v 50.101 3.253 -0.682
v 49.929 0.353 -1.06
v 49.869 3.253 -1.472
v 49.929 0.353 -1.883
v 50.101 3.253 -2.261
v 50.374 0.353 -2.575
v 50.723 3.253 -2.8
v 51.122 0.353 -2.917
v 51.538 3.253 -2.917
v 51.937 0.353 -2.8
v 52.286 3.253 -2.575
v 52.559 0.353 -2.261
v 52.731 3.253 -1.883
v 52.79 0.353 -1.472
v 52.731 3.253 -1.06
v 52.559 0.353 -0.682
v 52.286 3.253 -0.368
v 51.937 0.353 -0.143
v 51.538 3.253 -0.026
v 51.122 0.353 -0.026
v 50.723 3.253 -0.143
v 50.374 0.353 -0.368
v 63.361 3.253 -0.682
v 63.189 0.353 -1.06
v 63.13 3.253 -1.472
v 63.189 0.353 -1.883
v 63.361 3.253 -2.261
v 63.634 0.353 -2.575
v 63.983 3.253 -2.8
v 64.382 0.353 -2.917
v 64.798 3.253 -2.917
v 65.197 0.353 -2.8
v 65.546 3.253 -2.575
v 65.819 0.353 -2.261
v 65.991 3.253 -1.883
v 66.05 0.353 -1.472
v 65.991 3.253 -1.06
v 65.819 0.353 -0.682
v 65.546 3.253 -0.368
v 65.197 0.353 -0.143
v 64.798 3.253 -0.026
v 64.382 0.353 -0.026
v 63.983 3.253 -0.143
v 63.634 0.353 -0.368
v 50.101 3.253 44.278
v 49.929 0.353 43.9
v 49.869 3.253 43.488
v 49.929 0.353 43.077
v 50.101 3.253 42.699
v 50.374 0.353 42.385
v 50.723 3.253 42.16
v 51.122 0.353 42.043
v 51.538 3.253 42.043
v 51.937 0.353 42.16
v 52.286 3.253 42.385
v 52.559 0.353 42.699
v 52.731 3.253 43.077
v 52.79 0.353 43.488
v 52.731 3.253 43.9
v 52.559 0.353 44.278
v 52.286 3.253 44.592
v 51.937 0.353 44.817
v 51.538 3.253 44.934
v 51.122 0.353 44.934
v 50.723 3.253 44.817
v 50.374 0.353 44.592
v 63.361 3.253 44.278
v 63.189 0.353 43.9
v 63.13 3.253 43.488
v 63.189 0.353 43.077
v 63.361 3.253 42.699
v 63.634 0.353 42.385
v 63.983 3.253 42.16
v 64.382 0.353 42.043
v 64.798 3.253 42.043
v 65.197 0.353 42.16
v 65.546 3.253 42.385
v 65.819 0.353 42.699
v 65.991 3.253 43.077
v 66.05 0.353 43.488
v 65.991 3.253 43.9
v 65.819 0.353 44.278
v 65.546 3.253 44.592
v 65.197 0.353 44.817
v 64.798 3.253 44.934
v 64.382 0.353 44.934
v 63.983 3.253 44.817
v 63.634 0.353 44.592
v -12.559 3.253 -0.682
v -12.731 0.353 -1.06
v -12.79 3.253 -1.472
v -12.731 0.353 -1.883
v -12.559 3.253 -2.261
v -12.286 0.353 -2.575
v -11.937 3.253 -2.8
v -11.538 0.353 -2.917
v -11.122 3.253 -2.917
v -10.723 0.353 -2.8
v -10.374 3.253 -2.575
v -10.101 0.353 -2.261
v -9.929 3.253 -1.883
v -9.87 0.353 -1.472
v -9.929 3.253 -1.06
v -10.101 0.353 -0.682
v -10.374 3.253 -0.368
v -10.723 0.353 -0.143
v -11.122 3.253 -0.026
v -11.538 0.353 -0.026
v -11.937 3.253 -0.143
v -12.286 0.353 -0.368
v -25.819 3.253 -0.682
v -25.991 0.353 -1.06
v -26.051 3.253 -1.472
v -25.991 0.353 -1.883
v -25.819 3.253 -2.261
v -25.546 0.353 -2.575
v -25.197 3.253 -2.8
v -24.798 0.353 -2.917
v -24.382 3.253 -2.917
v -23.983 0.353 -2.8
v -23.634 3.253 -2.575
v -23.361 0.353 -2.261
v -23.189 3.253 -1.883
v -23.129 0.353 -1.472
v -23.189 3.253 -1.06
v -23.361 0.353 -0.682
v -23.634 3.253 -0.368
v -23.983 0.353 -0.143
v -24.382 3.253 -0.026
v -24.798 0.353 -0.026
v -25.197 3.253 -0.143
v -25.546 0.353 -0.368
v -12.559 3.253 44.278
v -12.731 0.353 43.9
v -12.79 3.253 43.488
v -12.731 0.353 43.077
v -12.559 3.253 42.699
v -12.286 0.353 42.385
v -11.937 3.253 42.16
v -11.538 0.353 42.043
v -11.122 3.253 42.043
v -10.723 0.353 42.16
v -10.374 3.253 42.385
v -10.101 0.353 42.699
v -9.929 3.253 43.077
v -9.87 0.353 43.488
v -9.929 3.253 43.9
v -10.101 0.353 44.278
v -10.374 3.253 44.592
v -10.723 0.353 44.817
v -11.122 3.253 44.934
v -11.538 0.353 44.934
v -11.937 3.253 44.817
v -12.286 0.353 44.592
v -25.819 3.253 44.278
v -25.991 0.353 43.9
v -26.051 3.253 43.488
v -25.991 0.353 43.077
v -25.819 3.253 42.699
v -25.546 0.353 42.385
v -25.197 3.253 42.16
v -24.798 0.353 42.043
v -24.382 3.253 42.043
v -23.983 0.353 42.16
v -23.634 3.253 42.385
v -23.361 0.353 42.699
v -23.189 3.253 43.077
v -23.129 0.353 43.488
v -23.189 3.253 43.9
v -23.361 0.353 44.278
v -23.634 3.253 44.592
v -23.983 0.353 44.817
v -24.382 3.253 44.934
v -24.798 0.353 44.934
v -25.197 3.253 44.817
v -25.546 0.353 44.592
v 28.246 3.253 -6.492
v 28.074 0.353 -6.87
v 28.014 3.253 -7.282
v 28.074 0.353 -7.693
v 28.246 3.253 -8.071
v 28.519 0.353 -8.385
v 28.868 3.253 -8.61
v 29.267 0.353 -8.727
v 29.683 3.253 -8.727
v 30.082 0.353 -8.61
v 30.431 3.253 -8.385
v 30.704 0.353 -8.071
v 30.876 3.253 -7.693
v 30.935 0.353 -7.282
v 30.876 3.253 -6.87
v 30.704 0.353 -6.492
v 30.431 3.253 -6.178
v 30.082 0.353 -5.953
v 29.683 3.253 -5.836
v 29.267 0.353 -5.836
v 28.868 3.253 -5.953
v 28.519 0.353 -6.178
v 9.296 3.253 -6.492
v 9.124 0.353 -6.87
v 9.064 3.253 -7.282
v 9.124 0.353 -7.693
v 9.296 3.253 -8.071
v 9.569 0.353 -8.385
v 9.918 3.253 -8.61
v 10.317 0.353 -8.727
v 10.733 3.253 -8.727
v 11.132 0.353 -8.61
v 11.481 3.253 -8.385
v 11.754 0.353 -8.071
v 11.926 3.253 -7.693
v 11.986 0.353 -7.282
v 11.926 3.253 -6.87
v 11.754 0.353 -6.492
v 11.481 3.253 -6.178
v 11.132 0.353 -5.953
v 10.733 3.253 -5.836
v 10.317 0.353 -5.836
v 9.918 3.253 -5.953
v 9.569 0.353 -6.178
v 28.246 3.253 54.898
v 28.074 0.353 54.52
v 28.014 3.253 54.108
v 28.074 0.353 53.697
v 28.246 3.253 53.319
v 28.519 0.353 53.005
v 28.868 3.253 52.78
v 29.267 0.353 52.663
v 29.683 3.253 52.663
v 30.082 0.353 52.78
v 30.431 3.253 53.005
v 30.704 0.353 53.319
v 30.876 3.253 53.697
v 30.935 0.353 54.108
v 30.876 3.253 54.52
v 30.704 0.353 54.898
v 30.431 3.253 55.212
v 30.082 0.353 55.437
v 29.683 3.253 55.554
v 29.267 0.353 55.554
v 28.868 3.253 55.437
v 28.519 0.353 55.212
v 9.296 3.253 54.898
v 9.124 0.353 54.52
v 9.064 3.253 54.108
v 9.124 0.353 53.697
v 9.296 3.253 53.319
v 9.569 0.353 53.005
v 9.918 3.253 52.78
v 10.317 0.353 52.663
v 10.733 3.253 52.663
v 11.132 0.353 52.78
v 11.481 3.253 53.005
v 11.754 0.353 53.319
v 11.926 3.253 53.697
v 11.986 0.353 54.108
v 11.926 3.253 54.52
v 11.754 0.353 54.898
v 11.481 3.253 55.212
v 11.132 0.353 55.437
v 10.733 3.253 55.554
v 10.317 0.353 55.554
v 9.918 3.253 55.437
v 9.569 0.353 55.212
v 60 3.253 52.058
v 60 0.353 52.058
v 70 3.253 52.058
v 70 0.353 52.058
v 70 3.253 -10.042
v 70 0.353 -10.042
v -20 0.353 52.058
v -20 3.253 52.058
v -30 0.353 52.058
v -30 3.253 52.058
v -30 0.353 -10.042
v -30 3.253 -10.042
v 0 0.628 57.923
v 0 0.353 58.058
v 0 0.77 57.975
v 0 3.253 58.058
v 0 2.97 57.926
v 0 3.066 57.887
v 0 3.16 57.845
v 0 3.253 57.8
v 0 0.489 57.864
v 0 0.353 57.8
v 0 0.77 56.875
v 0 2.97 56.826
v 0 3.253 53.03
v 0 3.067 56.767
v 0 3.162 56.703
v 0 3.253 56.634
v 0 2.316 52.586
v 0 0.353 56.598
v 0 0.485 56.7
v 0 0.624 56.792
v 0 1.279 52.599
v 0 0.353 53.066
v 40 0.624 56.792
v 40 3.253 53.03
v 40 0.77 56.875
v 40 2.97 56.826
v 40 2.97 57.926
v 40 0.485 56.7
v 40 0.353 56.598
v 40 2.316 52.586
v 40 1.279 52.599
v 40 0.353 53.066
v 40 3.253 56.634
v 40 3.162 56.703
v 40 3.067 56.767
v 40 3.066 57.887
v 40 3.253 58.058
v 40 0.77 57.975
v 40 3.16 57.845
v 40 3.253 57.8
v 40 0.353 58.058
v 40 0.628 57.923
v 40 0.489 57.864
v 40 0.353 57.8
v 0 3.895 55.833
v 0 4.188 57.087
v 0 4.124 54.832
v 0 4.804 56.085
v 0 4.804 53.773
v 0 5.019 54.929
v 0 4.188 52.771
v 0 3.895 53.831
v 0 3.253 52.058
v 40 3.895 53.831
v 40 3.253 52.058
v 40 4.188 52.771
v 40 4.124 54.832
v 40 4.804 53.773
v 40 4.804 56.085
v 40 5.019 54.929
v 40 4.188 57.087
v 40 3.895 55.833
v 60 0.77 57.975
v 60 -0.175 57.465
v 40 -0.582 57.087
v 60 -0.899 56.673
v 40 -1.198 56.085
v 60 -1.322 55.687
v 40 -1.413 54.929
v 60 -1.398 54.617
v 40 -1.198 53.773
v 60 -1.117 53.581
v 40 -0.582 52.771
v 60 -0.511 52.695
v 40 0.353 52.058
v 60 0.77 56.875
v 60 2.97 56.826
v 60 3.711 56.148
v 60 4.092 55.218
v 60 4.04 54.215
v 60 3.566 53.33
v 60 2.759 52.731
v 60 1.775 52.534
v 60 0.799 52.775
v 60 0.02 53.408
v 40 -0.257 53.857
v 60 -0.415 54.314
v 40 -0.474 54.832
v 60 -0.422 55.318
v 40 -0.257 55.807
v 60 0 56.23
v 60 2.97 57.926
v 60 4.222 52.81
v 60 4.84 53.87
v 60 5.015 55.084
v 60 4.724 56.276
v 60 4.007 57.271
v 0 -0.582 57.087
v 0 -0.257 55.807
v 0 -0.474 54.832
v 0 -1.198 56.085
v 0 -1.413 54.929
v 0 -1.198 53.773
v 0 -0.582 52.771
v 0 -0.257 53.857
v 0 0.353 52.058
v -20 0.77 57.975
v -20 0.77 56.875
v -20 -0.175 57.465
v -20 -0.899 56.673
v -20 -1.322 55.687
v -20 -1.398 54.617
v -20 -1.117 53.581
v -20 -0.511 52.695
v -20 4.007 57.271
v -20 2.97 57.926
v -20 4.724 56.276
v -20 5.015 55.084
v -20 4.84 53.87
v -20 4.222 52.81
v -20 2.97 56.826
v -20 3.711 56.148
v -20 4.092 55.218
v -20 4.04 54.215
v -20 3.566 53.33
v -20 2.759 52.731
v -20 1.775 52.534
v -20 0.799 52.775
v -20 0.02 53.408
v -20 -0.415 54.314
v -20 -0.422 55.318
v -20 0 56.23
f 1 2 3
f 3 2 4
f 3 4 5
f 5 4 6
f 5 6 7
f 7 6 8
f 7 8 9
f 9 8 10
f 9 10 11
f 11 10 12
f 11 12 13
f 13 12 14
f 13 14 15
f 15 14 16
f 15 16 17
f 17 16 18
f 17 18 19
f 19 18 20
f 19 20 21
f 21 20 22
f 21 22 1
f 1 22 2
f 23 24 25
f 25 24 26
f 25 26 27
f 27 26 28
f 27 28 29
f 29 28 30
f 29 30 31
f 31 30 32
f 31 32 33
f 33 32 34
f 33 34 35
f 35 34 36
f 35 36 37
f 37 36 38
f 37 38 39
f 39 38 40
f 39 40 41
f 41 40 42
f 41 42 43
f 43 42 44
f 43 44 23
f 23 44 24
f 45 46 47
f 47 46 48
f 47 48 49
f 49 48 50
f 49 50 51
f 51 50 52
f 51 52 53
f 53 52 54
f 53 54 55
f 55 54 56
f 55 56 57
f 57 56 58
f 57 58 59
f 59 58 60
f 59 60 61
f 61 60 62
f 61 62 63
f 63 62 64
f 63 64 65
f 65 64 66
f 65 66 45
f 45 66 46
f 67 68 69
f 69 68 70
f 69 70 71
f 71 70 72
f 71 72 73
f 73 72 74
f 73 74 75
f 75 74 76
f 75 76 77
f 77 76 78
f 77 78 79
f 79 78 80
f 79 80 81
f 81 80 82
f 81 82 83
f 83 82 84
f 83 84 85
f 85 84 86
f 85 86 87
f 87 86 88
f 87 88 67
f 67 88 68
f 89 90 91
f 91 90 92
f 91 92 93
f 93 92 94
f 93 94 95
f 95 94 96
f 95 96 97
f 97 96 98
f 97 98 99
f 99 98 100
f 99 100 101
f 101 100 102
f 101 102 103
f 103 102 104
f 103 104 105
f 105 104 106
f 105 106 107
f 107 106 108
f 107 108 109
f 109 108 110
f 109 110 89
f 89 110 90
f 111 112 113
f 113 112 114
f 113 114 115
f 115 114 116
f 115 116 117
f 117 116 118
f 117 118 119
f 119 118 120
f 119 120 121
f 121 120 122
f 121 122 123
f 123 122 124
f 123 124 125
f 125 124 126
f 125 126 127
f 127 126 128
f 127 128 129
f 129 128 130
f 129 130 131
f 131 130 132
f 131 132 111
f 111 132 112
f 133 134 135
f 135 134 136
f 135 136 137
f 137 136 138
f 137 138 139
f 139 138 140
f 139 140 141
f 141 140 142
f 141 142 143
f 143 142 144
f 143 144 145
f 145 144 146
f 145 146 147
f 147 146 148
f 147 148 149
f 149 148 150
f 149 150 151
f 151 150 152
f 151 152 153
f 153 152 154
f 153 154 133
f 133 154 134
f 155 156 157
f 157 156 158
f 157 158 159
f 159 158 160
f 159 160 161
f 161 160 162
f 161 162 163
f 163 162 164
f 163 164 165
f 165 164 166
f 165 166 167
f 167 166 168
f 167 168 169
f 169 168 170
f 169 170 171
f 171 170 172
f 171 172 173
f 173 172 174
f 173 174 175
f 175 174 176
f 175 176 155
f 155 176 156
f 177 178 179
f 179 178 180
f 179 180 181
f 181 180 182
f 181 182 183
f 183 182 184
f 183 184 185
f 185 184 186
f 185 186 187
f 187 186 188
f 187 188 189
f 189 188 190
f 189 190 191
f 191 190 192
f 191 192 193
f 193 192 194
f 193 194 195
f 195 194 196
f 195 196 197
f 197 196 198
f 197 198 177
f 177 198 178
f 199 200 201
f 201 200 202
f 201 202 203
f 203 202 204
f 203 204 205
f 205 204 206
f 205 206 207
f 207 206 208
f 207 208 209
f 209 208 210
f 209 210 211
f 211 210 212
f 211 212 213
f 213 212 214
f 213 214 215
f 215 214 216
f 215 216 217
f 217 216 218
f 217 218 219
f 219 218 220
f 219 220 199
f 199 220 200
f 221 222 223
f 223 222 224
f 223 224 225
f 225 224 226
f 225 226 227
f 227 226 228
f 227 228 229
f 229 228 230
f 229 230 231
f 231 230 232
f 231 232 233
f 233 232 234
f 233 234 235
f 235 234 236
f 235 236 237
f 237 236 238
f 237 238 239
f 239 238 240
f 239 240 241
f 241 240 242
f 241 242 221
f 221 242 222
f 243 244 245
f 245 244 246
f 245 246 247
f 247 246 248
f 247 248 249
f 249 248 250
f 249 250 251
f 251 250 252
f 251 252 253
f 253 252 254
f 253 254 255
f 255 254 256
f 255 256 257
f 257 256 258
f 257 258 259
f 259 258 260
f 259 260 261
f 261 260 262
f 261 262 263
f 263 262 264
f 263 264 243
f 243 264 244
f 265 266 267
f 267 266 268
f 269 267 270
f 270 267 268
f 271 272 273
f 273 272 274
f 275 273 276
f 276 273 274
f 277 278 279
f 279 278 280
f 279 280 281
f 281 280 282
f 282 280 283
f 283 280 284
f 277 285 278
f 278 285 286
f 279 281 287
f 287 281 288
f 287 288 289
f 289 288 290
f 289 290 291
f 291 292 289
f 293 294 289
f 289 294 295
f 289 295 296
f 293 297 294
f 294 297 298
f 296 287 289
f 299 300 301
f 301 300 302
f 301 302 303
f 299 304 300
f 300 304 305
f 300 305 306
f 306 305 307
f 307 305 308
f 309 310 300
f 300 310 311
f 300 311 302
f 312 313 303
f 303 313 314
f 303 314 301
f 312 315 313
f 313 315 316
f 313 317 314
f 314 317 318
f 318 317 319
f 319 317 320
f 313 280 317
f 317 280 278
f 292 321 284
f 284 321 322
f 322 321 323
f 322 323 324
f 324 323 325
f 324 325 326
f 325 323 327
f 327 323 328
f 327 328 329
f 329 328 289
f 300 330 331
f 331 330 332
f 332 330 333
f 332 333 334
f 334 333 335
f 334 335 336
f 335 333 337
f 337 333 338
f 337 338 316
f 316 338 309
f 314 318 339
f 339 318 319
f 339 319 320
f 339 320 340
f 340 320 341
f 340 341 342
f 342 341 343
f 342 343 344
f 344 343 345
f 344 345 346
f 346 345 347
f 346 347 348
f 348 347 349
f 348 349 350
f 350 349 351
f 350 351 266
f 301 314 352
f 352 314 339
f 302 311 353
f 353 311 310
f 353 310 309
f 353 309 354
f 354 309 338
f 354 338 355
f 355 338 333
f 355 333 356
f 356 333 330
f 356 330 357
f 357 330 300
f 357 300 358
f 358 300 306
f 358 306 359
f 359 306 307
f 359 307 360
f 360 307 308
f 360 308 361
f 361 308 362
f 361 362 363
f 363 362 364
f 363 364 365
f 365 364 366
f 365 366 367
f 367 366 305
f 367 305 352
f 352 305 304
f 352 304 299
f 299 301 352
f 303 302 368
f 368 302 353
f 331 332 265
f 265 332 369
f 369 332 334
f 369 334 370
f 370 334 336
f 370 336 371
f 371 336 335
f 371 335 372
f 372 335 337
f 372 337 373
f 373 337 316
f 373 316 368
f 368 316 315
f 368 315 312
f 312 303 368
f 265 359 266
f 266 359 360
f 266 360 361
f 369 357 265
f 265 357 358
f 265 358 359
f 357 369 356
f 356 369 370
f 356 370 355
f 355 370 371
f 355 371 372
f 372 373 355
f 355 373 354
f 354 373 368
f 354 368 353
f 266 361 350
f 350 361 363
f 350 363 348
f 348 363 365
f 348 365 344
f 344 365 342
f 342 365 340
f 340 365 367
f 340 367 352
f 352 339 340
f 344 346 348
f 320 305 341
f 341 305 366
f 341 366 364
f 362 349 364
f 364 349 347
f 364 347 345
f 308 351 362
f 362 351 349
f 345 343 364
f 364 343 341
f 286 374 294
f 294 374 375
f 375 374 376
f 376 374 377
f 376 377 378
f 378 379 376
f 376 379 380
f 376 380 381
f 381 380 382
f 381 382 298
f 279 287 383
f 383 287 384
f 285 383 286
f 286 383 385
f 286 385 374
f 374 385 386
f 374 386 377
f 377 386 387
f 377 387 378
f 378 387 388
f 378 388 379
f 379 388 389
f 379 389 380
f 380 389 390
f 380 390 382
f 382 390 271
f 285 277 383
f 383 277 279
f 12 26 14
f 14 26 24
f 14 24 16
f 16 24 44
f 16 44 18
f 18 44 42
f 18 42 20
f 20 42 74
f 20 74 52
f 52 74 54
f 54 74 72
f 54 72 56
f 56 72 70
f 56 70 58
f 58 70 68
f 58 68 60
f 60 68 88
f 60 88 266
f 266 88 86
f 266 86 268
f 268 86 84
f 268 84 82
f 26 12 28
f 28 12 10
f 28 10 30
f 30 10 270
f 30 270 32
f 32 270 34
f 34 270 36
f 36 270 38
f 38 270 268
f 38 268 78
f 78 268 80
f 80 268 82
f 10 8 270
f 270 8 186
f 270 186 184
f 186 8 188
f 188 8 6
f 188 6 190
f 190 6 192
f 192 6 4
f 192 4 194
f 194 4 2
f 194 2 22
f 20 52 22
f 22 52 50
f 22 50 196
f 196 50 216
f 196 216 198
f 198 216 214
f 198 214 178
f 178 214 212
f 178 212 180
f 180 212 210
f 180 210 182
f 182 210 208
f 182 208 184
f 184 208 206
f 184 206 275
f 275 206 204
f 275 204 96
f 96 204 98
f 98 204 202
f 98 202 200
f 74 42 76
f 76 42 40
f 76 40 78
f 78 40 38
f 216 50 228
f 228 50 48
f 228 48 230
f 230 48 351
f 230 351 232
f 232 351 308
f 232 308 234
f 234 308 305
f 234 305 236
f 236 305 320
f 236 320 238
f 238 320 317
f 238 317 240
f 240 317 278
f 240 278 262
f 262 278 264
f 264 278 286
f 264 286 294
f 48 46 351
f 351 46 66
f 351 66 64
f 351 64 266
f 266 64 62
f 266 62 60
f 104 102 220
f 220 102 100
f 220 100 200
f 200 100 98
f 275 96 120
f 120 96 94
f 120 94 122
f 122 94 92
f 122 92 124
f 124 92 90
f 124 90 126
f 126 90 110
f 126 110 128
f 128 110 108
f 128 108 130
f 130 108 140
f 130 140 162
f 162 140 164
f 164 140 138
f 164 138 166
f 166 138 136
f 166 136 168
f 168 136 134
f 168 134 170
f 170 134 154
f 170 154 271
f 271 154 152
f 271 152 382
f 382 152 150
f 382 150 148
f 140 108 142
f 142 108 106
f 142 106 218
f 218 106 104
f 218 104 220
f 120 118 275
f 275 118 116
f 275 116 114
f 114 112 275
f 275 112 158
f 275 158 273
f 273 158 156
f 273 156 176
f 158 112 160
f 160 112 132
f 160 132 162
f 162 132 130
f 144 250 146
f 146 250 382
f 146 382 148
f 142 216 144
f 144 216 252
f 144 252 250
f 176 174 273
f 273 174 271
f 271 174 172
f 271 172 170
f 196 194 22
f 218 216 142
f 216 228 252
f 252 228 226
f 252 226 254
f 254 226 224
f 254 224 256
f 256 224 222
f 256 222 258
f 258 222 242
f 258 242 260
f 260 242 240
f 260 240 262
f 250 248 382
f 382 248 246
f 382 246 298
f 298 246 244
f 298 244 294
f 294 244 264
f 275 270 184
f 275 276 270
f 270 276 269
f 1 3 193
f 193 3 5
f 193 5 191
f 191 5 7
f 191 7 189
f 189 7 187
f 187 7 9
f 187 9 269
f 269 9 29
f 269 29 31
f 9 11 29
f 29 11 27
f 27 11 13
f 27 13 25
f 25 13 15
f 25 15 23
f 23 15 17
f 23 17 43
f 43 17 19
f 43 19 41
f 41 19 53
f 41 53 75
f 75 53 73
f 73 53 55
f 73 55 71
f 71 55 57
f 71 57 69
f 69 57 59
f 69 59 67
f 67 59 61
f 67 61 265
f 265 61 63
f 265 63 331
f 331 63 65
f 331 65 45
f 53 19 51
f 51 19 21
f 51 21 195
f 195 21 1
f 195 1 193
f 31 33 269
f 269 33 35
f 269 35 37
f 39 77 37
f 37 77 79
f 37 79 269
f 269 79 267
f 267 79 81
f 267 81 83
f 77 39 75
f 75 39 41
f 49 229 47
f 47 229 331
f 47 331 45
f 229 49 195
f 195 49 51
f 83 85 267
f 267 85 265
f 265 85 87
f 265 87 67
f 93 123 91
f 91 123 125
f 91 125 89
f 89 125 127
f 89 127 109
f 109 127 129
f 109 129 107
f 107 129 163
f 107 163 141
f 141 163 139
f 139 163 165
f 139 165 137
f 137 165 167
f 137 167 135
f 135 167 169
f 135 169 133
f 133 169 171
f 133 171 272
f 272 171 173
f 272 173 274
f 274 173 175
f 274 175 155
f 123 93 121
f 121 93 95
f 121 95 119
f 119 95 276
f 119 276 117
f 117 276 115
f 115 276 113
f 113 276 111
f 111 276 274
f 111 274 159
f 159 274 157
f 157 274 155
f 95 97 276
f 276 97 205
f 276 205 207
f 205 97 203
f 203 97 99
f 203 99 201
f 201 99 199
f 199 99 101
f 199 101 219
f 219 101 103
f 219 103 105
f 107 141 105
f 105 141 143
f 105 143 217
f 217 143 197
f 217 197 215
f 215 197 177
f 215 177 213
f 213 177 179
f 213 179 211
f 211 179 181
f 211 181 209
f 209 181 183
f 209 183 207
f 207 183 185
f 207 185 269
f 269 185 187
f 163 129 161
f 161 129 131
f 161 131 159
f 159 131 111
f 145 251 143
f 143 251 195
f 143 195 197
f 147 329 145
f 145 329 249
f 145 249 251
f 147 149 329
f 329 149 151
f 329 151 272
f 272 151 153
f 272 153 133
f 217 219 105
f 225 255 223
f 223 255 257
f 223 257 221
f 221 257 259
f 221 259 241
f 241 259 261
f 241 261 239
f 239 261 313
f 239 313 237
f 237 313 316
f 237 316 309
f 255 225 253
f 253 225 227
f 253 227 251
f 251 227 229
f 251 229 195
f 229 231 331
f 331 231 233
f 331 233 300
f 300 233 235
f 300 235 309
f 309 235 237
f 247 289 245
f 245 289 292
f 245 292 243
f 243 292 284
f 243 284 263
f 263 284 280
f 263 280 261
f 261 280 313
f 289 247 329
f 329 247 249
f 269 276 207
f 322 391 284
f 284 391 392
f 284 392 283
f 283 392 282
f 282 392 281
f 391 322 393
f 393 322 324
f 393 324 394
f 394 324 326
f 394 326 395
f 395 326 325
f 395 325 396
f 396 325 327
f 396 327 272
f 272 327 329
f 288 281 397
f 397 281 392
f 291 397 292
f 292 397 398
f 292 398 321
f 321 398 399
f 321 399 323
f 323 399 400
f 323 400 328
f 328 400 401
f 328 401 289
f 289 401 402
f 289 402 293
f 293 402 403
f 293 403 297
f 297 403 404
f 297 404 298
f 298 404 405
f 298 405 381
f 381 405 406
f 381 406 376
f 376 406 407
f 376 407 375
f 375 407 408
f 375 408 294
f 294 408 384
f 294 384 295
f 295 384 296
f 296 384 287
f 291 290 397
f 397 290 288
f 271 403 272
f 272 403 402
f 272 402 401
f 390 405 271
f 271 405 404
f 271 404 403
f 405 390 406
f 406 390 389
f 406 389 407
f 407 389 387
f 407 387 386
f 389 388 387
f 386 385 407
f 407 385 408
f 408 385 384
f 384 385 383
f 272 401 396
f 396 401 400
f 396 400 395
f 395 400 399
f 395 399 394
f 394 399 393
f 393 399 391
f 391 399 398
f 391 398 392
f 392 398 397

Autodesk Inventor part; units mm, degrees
ref_plane "YZ Plane" through (0, 0, 0) normal (1, 0, 0) x (0, 1, 0)
ref_plane "XZ Plane" through (0, 0, 0) normal (0, 1, 0) x (-1, 0, 0)
ref_plane "XY Plane" through (0, 0, 0) normal (0, 0, 1) x (1, 0, 0)
sketch "Sketch1" plane through (0, 0, 0) normal (1, 0, 0) x (0, 1, 0)
  line L0 (3.2531, 52.0584) -> (0.3531, 52.0584)
  line L1 (0.3531, 52.0584) -> (0.3531, -10.0416)
  line L2 (0.3531, -10.0416) -> (3.2531, -10.0416)
  line L3 (3.2531, -10.0416) -> (3.2531, 52.0584)
  arc A0 (3.2531, 52.0584) -> (2.9699, 57.9259) centre (1.8031, 54.929) ccw
  arc A1 (0.7699, 57.9745) -> (0.3531, 52.0584) centre (1.8031, 54.929) ccw
  line L4 (0.7699, 57.9745) -> (0.7699, 56.8745)
  line L5 (2.9699, 57.9259) -> (2.9699, 56.8259)
  arc A2 (0.7699, 56.8745) -> (2.9699, 56.8259) centre (1.8253, 54.832) ccw
  point P0 (0, 0)
  dimension "d0" = 2.9
  dimension "d1" = 62.1
  dimension "d156" = 1.1
  dimension "d157" = 1.1
  dimension "d158" = 2.2
extrude "Extrusion1" add sketch "Sketch1" against normal blind 20
sketch "Sketch3" plane through (0, 0, 0) normal (1, 0, 0) x (0, 0, -1)
  arc A0 (-52.0584, 3.2531) -> (-57.9259, 2.9699) centre (-54.929, 1.8031) ccw projected
  line L0 (10.0416, 0.3531) -> (-52.0584, 0.3531) projected
  line L1 (-52.0584, 3.2531) -> (10.0416, 3.2531)
  line L2 (10.0416, 3.2531) -> (10.0416, 0.3531)
  line L3 (10.0416, 0.3531) -> (-52.0584, 0.3531)
  line L4 (-52.0584, 0.3531) -> (-52.0584, 3.2531)
  point P0 (0, 0)
extrude "Extrusion2" add sketch "Sketch3" along normal blind 40
sketch "Sketch4" plane through (40, 0, 0) normal (1, 0, 0) x (0, 0, -1)
  line L0 (10.0416, 0.3531) -> (-52.0584, 0.3531) projected
  line L1 (10.0416, 0.3531) -> (-52.0584, 0.3531)
  line L2 (-52.0584, 0.3531) -> (-52.0584, 3.2531)
  line L3 (-52.0584, 3.2531) -> (10.0416, 3.2531)
  line L4 (10.0416, 3.2531) -> (10.0416, 0.3531)
  arc A0 (-57.9745, 0.7699) -> (-52.0584, 0.3531) centre (-54.929, 1.8031) ccw projected
  arc A1 (-57.9745, 0.7699) -> (-52.0584, 0.3531) centre (-54.929, 1.8031) ccw
  arc A2 (-52.0584, 3.2531) -> (-57.9259, 2.9699) centre (-54.929, 1.8031) ccw projected
  arc A3 (-52.0584, 3.2531) -> (-57.9259, 2.9699) centre (-54.929, 1.8031) ccw
  arc A4 (-56.8745, 0.7699) -> (-56.8259, 2.9699) centre (-54.832, 1.8253) ccw projected
  arc A5 (-56.8745, 0.7699) -> (-56.8259, 2.9699) centre (-54.832, 1.8253) ccw
  line L5 (-56.8745, 0.7699) -> (-57.9745, 0.7699) projected
  line L6 (-56.8745, 0.7699) -> (-57.9745, 0.7699)
  line L7 (-57.9259, 2.9699) -> (-56.8259, 2.9699) projected
  line L8 (-56.8259, 2.9699) -> (-57.9259, 2.9699)
  point P0 (0, 0)
  dimension "d159" = 1.1
  dimension "d160" = 2.2
extrude "Extrusion3" add sketch "Sketch4" along normal blind 20
sketch "Sketch9" plane through (0, 0.3531, 52.0584) normal (0, 0, 1) x (1, 0, 0)
  line L0 (0, 2.9) -> (40, 2.9) projected
  line L1 (0, 2.9) -> (40, 2.9)
  line L2 (40, 2.9) -> (40, 0)
  line L3 (40, 0) -> (0, 0)
  line L4 (0, 0) -> (0, 2.9)
  point P0 (0, -0.3531)
extrude "Extrusion4" add sketch "Sketch9" along normal blind 6
sketch "Sketch10" plane through (-20, 0, 0) normal (-1, 0, 0) x (0, 0, 1)
  arc A0 (52.0584, 0.3531) -> (57.9745, 0.7699) centre (54.929, 1.8031) ccw projected
  line L0 (-10.0416, 3.2531) -> (-10.0416, 0.3531) projected
  line L1 (52.0584, 0.3531) -> (-10.0416, 0.3531)
  line L2 (-10.0416, 0.3531) -> (-10.0416, 3.2531)
  line L3 (-10.0416, 3.2531) -> (52.0584, 3.2531)
  line L4 (52.0584, 3.2531) -> (52.0584, 0.3531)
  point P0 (0, 0)
extrude "Extrusion5" add sketch "Sketch10" along normal blind 10
sketch "Sketch11" plane through (60, 0, 0) normal (1, 0, 0) x (0, 0, -1)
  line L0 (10.0416, 0.3531) -> (10.0416, 3.2531) projected
  arc A0 (-52.0584, 3.2531) -> (-57.7996, 3.2531) centre (-54.929, 1.8031) ccw projected
  line L1 (10.0416, 0.3531) -> (-52.0584, 0.3531)
  line L2 (-52.0584, 0.3531) -> (-52.0584, 3.2531)
  line L3 (-52.0584, 3.2531) -> (10.0416, 3.2531)
  line L4 (10.0416, 3.2531) -> (10.0416, 0.3531)
  point P0 (0, 0)
extrude "Extrusion6" add sketch "Sketch11" along normal blind 10
sketch "Sketch5" plane through (-20, 0.3531, -10.0416) normal (0, -1, 0) x (1, 0, 0)
  line L0 (20, 62.1) -> (60, 62.1) projected
  line L1 (0, 0) -> (0, 62.1) projected
  line L2 (60, 68.1) -> (20, 68.1) projected
  line L3 (-10, 0) -> (-10, 62.1) projected
  point P0 (20, 10.0416)
  point P1 (30.525, 64.15)
  dimension "d80" = 40.525
  dimension "d81" = 3.95
hole "Hole1" at (10.525, 0.3531, 54.1084) direction (0, 1, 0) diameter 2.921 end through all
sketch "Sketch6" plane through (-20, 0.3531, -10.0416) normal (0, -1, 0) x (1, 0, 0)
  line L0 (20, 62.1) -> (60, 62.1) projected
  circle A0 centre (30.525, 64.15) radius 1.4605 projected
  line L1 (60, 68.1) -> (20, 68.1) projected
  point P0 (20, 10.0416)
  point P1 (49.475, 64.15)
  dimension "d42" = 18.95
  dimension "d53" = 3.95
hole "Hole2" at (29.475, 0.3531, 54.1084) direction (0, 1, 0) diameter 2.921 end through all
sketch "Sketch7" plane through (-20, 0.3531, -10.0416) normal (0, -1, 0) x (1, 0, 0)
  line L0 (0, 0) -> (0, 62.1) projected
  circle A0 centre (30.525, 64.15) radius 1.4605 projected
  line L1 (-10, 0) -> (-10, 62.1) projected
  point P0 (20, 10.0416)
  point P1 (30.525, 2.76)
  dimension "d49" = 61.39
  dimension "d82" = 40.525
hole "Hole3" at (10.525, 0.3531, -7.2816) direction (0, 1, 0) diameter 2.921 end through all
sketch "Sketch8" plane through (-20, 0.3531, -10.0416) normal (0, -1, 0) x (1, 0, 0)
  circle A0 centre (30.525, 2.76) radius 1.4605 projected
  circle A1 centre (49.475, 64.15) radius 1.4605 projected
  point P0 (20, 10.0416)
  point P1 (49.475, 2.76)
  point P2 (41.1972, 0)
  point P3 (38.7028, 0)
  point P4 (60, 64.989)
  point P5 (60, 63.311)
  dimension "d48" = 18.95
  dimension "d54" = 61.39
hole "Hole4" at (29.475, 0.3531, -7.2816) direction (0, 1, 0) diameter 2.921 end through all
sketch "Sketch12" plane through (0, 0.3531, 58.0584) normal (0, -1, 0) x (1, 0, 0)
  line L0 (-20, -6) -> (-30, -6) projected
  line L1 (-30, -68.1) -> (-30, -6) projected
  point P0 (0, -58.0584)
  point P1 (-24.59, -14.57)
  dimension "d133" = 8.57
  dimension "d134" = 5.41
hole "Hole5" at (-24.59, 0.3531, 43.4884) direction (0, 1, 0) diameter 2.921 end through all
sketch "Sketch13" plane through (0, 0.3531, 58.0584) normal (0, -1, 0) x (1, 0, 0)
  line L0 (0, -6) -> (-20, -6) projected
  circle A0 centre (-24.59, -14.57) radius 1.4605 projected
  point P0 (0, -58.0584)
  point P1 (-11.33, -14.57)
  dimension "d135" = 8.57
  dimension "d136" = 13.26
hole "Hole6" at (-11.33, 0.3531, 43.4884) direction (0, 1, 0) diameter 2.921 end through all
sketch "Sketch14" plane through (0, 0.3531, 58.0584) normal (0, -1, 0) x (1, 0, 0)
  line L0 (-30, -68.1) -> (-30, -6) projected
  circle A0 centre (-24.59, -14.57) radius 1.4605 projected
  point P0 (0, -58.0584)
  point P1 (-24.59, -59.53)
  dimension "d137" = 5.41
  dimension "d138" = 44.96
hole "Hole7" at (-24.59, 0.3531, -1.4716) direction (0, 1, 0) diameter 2.921 end through all
sketch "Sketch15" plane through (0, 0.3531, 58.0584) normal (0, -1, 0) x (1, 0, 0)
  circle A0 centre (-11.33, -14.57) radius 1.4605 projected
  circle A1 centre (-24.59, -59.53) radius 1.4605 projected
  point P0 (0, -58.0584)
  point P1 (-11.33, -59.53)
  dimension "d139" = 44.96
  dimension "d148" = 13.26
hole "Hole8" at (-11.33, 0.3531, -1.4716) direction (0, 1, 0) diameter 2.921 end through all
sketch "Sketch17" plane through (0, 0.3531, 58.0584) normal (0, -1, 0) x (1, 0, 0)
  line L0 (70, -6) -> (70, -68.1) projected
  line L1 (60, -6) -> (70, -6) projected
  point P0 (0, -58.0584)
  point P1 (64.59, -14.57)
  dimension "d142" = 5.41
  dimension "d147" = 8.57
hole "Hole10" at (64.59, 0.3531, 43.4884) direction (0, 1, 0) diameter 2.921 end through all
sketch "Sketch16" plane through (0, 0.3531, 58.0584) normal (0, -1, 0) x (1, 0, 0)
  circle A0 centre (64.59, -14.57) radius 1.4605 projected
  line L0 (40, -6) -> (60, -6) projected
  point P0 (0, -58.0584)
  point P1 (51.33, -14.57)
  dimension "d144" = 13.26
  dimension "d146" = 8.57
hole "Hole9" at (51.33, 0.3531, 43.4884) direction (0, 1, 0) diameter 2.921 end through all
sketch "Sketch19" plane through (0, 0.3531, 58.0584) normal (0, -1, 0) x (1, 0, 0)
  circle A0 centre (64.59, -14.57) radius 1.4605 projected
  line L0 (70, -6) -> (70, -68.1) projected
  point P0 (0, -58.0584)
  point P1 (64.59, -59.53)
  dimension "d141" = 44.96
  dimension "d143" = 5.41
hole "Hole12" at (64.59, 0.3531, -1.4716) direction (0, 1, 0) diameter 2.921 end through all
sketch "Sketch18" plane through (0, 0.3531, 58.0584) normal (0, -1, 0) x (1, 0, 0)
  circle A0 centre (51.33, -14.57) radius 1.4605 projected
  circle A1 centre (64.59, -59.53) radius 1.4605 projected
  point P0 (0, -58.0584)
  point P1 (51.33, -59.53)
  dimension "d140" = 44.96
  dimension "d145" = 13.26
hole "Hole11" at (51.33, 0.3531, -1.4716) direction (0, 1, 0) diameter 2.921 end through all
